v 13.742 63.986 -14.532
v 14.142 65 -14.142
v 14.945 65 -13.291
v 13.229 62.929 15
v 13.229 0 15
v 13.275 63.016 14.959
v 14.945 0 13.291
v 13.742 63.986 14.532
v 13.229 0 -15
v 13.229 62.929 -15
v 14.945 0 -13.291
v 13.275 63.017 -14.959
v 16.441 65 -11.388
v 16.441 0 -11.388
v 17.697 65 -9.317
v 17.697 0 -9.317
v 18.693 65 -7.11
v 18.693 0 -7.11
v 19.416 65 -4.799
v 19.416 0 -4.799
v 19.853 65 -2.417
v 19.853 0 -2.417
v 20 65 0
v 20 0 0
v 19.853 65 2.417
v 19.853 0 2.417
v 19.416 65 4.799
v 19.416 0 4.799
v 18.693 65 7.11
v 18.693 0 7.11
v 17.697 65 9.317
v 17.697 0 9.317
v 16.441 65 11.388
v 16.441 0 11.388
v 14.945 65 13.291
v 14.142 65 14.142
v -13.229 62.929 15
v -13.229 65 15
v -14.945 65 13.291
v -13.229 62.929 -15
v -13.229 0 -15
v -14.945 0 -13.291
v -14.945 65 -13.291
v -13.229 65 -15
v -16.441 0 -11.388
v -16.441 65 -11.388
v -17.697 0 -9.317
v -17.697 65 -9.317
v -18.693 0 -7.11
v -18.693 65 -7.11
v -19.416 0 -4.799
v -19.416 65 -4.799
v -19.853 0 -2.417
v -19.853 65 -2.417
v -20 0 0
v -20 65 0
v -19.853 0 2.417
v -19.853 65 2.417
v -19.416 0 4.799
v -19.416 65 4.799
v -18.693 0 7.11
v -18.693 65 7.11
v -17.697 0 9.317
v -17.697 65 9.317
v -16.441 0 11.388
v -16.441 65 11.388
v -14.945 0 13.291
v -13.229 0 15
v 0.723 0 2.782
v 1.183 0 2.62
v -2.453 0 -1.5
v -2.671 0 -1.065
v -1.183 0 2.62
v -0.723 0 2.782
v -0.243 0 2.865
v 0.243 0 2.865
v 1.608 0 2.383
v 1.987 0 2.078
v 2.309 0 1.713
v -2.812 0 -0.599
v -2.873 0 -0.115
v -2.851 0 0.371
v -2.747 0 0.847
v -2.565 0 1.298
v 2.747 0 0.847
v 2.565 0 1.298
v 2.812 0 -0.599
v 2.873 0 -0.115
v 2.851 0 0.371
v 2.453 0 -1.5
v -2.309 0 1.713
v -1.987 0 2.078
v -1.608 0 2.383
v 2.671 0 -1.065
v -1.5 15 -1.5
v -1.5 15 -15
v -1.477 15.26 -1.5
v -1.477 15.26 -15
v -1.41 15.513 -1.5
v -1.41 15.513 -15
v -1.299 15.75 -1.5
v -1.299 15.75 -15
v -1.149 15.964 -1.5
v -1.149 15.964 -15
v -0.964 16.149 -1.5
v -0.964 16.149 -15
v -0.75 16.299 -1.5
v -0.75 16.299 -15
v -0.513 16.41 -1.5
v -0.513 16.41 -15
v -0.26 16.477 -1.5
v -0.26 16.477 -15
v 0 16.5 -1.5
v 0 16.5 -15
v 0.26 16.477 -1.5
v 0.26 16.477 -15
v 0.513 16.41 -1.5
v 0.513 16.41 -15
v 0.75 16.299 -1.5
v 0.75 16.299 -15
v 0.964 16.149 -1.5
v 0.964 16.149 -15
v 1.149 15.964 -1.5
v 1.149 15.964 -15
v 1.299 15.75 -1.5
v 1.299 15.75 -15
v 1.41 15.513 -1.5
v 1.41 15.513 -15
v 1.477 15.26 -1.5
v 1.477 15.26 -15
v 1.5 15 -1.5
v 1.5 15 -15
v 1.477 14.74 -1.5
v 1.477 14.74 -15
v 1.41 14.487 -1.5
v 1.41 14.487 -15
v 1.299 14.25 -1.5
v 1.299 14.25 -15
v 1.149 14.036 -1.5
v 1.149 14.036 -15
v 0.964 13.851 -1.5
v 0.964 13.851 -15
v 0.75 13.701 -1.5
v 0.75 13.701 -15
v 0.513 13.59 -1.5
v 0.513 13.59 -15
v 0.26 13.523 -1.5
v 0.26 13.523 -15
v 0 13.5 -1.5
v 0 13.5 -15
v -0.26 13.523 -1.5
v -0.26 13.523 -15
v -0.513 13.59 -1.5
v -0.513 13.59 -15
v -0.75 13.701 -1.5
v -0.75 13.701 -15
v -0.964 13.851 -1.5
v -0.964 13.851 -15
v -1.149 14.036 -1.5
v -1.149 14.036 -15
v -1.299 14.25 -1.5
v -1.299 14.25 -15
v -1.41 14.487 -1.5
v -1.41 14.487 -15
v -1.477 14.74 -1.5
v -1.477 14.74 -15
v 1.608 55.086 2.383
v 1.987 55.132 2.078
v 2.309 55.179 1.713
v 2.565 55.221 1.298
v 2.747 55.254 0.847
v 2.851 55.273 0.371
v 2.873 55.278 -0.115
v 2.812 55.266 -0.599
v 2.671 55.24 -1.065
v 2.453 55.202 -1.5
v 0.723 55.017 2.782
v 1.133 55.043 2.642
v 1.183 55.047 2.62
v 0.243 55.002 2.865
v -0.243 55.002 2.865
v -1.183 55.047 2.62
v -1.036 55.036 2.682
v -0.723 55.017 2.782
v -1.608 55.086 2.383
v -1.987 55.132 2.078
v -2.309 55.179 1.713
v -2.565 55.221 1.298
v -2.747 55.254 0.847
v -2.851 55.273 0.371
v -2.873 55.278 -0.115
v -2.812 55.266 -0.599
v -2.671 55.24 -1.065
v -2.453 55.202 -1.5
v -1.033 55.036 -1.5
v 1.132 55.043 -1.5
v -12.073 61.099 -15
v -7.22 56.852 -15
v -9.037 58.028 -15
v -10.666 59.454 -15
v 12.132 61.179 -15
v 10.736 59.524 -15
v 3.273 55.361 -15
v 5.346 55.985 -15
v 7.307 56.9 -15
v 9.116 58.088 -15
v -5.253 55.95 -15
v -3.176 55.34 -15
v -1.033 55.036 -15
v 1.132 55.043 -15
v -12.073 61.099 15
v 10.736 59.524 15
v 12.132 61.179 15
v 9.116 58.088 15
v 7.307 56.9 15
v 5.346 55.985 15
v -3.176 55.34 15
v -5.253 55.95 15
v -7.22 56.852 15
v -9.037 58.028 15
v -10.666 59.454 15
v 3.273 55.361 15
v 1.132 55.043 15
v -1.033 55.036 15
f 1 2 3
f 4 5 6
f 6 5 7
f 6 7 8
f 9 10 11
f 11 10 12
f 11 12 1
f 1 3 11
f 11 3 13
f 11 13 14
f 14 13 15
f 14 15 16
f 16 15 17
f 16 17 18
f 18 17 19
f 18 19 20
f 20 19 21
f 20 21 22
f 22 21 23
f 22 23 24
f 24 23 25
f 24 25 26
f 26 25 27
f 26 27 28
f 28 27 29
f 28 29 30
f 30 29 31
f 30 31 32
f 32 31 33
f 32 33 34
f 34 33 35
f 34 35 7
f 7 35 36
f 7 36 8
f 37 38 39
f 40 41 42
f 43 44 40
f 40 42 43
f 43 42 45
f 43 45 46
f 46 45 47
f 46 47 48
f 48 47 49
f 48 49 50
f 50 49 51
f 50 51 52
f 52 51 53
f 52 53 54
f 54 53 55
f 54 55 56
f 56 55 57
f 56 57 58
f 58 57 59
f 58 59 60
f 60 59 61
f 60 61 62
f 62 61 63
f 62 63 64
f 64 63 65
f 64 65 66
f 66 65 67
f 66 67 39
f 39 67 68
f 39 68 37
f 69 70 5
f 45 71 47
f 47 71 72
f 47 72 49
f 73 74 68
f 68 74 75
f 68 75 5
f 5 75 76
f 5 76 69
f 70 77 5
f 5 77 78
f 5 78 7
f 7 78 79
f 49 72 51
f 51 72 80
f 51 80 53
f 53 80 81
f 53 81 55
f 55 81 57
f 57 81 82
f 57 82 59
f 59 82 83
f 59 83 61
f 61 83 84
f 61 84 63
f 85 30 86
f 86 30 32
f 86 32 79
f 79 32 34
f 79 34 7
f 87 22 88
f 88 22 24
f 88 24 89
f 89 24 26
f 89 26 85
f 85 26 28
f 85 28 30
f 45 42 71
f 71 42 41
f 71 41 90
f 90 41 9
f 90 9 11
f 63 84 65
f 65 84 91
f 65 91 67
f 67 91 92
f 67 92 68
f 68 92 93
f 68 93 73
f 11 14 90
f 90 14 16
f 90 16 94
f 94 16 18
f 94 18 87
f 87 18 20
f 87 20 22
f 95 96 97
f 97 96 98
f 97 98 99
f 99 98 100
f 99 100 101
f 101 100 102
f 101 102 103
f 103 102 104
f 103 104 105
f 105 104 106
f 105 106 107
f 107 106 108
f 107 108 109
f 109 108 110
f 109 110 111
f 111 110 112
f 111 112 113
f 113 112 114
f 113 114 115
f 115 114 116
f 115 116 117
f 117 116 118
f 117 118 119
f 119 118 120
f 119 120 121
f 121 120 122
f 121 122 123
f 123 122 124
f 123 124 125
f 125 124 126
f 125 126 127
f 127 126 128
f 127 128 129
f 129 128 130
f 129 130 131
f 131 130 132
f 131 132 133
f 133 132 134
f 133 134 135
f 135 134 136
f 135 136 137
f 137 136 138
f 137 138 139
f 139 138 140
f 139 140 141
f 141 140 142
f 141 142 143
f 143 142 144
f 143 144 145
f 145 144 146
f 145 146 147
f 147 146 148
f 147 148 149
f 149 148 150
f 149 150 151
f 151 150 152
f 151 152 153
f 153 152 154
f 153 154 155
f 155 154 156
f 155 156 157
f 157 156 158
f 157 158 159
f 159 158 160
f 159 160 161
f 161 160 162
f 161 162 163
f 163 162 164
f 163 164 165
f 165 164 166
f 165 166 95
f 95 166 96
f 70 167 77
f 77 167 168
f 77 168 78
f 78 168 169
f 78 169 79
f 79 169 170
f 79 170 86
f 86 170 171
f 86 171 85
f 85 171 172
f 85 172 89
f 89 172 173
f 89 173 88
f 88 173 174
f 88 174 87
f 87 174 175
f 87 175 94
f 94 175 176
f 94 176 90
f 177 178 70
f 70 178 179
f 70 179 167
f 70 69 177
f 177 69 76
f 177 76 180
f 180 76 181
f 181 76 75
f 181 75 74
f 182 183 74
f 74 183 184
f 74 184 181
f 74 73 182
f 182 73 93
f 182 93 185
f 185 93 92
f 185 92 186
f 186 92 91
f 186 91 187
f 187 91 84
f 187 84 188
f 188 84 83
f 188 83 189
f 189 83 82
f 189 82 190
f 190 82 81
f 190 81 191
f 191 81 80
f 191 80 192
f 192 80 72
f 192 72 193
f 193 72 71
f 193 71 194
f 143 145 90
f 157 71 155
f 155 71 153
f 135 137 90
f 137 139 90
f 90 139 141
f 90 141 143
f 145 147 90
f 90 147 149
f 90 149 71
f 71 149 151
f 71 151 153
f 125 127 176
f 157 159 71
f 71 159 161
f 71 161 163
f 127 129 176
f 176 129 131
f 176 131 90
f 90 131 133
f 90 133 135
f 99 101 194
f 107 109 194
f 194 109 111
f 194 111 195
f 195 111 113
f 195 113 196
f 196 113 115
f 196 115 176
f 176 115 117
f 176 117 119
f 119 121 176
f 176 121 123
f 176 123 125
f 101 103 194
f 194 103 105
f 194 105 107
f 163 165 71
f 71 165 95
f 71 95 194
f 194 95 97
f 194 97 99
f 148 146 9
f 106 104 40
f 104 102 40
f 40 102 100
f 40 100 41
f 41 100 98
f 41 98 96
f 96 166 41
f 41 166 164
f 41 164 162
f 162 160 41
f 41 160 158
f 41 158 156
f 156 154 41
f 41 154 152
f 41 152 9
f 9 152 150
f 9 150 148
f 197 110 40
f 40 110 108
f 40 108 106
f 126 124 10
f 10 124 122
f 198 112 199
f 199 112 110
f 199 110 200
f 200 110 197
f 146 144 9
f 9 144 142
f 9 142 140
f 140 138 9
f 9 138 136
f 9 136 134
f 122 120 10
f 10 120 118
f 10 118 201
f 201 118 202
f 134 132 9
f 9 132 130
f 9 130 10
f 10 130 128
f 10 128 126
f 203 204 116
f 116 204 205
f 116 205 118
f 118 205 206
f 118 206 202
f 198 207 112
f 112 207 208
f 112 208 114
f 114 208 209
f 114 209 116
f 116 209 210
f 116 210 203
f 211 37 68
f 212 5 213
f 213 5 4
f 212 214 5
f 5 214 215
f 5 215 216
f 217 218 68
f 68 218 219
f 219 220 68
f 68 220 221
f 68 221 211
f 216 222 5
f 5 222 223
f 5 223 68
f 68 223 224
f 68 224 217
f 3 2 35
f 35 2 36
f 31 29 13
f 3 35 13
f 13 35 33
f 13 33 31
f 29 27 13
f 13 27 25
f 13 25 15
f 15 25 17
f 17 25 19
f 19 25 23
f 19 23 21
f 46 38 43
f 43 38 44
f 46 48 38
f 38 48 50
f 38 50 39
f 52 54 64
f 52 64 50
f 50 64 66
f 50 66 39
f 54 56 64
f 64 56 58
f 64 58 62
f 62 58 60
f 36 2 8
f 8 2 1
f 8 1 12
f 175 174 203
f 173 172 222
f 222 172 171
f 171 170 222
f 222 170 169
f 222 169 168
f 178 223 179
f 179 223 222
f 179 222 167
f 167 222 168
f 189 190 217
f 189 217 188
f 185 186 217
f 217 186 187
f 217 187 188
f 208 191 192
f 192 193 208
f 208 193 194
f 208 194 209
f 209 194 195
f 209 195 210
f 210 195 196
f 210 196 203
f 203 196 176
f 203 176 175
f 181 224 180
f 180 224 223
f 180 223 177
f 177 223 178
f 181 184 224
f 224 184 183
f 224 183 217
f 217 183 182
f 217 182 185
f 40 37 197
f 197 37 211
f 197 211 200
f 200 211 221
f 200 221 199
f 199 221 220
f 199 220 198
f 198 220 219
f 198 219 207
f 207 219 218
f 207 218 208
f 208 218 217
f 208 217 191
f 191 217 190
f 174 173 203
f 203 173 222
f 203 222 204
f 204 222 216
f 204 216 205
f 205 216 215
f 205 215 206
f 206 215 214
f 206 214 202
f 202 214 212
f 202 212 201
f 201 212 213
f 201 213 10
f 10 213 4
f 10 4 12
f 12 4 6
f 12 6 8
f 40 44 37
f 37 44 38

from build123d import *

# Parameters (mm, degrees)
SKETCH1_R           = 20
BOSS_EXTRUDE1_DEPTH = 30
SKETCH2_R           = 1.5
CUT_EXTRUDE1_DEPTH  = 18.5
CUT_EXTRUDE2_DEPTH  = 42.231056426
BOSS_EXTRUDE2_DEPTH = 40
SKETCH5_W           = 26.45751311
SKETCH5_H           = 5
CUT_EXTRUDE3_DEPTH  = 79.74007874


with BuildPart() as part:
    # Sketch1 → Boss-Extrude1 (new body)
    with BuildSketch(Plane(origin=(0, 0, 0), x_dir=(1, 0, 0), z_dir=(0, 1, 0))):
        with Locations(Location((0, 0, 0), (0, 0, 270))):
            Circle(SKETCH1_R)
        with BuildLine():
            Line((-2.452677109, 1.5), (2.452677109, 1.5))
            ThreePointArc((2.452677109, 1.5), (0, -2.875), (-2.452677109, 1.5))
        make_face(mode=Mode.SUBTRACT)
    extrude(amount=BOSS_EXTRUDE1_DEPTH)

    # Sketch2 → Cut-Extrude1 (cut)
    with BuildSketch(Plane(origin=(0, 0, -20), x_dir=(-1, 0, 0), z_dir=(0, 0, -1))):
        with Locations((0, 15)):
            Circle(SKETCH2_R)
    extrude(amount=-CUT_EXTRUDE1_DEPTH, mode=Mode.SUBTRACT)

    # Sketch3 → Cut-Extrude2 (cut, through all)
    with BuildSketch(Plane(origin=(0, 30, 0), x_dir=(1, 0, 0), z_dir=(0, 1, 0))):
        with BuildLine():
            ThreePointArc((-13.228756555, -15), (0, -20), (13.228756555, -15))
            Line((13.228756555, -15), (-13.228756555, -15))
        make_face()
        with BuildLine():
            Line((-13.228756555, 15), (13.228756555, 15))
            ThreePointArc((13.228756555, 15), (0, 20), (-13.228756555, 15))
        make_face()
    extrude(amount=-CUT_EXTRUDE2_DEPTH, mode=Mode.SUBTRACT)

    # Sketch4 → Boss-Extrude2 (add)
    with BuildSketch(Plane(origin=(0, 30, 0), x_dir=(1, 0, 0), z_dir=(0, 1, 0))):
        with BuildLine():
            Line((-13.228756555, -15), (13.228756555, -15))
            ThreePointArc((13.228756555, -15), (20, 0), (13.228756555, 15))
            Line((13.228756555, 15), (-13.228756555, 15))
            ThreePointArc((-13.228756555, 15), (-20, 0), (-13.228756555, -15))
        make_face()
        with BuildLine():
            Line((-2.452677109, 1.5), (2.452677109, 1.5))
            ThreePointArc((2.452677109, 1.5), (0, -2.875), (-2.452677109, 1.5))
        make_face(mode=Mode.SUBTRACT)
    extrude(amount=BOSS_EXTRUDE2_DEPTH)

    # Sketch5 → Cut-Extrude3 (cut, through all)
    with BuildSketch(Plane.XY.offset(15)):
        with Locations((0, 67.5)):
            Rectangle(SKETCH5_W, SKETCH5_H)
        with BuildLine():
            Line((13.228756555, 65), (-13.228756555, 65))
            Line((-13.228756555, 65), (-13.228756555, 62.928932188))
            ThreePointArc((-13.228756555, 62.928932188), (0, 55), (13.228756555, 62.928932188))
            Line((13.228756555, 62.928932188), (13.228756555, 65))
        make_face()
        with BuildLine():
            Line((14.142135624, 75), (-14.142135624, 75))
            ThreePointArc((-14.142135624, 75), (-15, 70), (-14.142135624, 65))
            Line((-14.142135624, 65), (-13.228756555, 65))
            Line((-13.228756555, 65), (-13.228756555, 70))
            Line((-13.228756555, 70), (13.228756555, 70))
            Line((13.228756555, 70), (13.228756555, 65))
            Line((13.228756555, 65), (14.142135624, 65))
            ThreePointArc((14.142135624, 65), (14.783978395, 67.463470319), (15, 70))
            ThreePointArc((15, 70), (14.783978395, 72.536529681), (14.142135624, 75))
        make_face()
        with BuildLine():
            Line((20, 75), (14.142135624, 75))
            ThreePointArc((14.142135624, 75), (14.783978395, 72.536529681), (15, 70))
            ThreePointArc((15, 70), (14.783978395, 67.463470319), (14.142135624, 65))
            Line((14.142135624, 65), (20, 65))
            Line((20, 65), (20, 75))
        make_face()
        with BuildLine():
            ThreePointArc((13.228756555, 62.928932188), (13.72456794, 63.947212637), (14.142135624, 65))
            Line((14.142135624, 65), (13.228756555, 65))
            Line((13.228756555, 65), (13.228756555, 62.928932188))
        make_face()
        with BuildLine():
            Line((-14.142135624, 75), (-20, 75))
            Line((-20, 75), (-20, 65))
            Line((-20, 65), (-14.142135624, 65))
            ThreePointArc((-14.142135624, 65), (-15, 70), (-14.142135624, 75))
        make_face()
    extrude(amount=-CUT_EXTRUDE3_DEPTH, mode=Mode.SUBTRACT)


solid = part.part
